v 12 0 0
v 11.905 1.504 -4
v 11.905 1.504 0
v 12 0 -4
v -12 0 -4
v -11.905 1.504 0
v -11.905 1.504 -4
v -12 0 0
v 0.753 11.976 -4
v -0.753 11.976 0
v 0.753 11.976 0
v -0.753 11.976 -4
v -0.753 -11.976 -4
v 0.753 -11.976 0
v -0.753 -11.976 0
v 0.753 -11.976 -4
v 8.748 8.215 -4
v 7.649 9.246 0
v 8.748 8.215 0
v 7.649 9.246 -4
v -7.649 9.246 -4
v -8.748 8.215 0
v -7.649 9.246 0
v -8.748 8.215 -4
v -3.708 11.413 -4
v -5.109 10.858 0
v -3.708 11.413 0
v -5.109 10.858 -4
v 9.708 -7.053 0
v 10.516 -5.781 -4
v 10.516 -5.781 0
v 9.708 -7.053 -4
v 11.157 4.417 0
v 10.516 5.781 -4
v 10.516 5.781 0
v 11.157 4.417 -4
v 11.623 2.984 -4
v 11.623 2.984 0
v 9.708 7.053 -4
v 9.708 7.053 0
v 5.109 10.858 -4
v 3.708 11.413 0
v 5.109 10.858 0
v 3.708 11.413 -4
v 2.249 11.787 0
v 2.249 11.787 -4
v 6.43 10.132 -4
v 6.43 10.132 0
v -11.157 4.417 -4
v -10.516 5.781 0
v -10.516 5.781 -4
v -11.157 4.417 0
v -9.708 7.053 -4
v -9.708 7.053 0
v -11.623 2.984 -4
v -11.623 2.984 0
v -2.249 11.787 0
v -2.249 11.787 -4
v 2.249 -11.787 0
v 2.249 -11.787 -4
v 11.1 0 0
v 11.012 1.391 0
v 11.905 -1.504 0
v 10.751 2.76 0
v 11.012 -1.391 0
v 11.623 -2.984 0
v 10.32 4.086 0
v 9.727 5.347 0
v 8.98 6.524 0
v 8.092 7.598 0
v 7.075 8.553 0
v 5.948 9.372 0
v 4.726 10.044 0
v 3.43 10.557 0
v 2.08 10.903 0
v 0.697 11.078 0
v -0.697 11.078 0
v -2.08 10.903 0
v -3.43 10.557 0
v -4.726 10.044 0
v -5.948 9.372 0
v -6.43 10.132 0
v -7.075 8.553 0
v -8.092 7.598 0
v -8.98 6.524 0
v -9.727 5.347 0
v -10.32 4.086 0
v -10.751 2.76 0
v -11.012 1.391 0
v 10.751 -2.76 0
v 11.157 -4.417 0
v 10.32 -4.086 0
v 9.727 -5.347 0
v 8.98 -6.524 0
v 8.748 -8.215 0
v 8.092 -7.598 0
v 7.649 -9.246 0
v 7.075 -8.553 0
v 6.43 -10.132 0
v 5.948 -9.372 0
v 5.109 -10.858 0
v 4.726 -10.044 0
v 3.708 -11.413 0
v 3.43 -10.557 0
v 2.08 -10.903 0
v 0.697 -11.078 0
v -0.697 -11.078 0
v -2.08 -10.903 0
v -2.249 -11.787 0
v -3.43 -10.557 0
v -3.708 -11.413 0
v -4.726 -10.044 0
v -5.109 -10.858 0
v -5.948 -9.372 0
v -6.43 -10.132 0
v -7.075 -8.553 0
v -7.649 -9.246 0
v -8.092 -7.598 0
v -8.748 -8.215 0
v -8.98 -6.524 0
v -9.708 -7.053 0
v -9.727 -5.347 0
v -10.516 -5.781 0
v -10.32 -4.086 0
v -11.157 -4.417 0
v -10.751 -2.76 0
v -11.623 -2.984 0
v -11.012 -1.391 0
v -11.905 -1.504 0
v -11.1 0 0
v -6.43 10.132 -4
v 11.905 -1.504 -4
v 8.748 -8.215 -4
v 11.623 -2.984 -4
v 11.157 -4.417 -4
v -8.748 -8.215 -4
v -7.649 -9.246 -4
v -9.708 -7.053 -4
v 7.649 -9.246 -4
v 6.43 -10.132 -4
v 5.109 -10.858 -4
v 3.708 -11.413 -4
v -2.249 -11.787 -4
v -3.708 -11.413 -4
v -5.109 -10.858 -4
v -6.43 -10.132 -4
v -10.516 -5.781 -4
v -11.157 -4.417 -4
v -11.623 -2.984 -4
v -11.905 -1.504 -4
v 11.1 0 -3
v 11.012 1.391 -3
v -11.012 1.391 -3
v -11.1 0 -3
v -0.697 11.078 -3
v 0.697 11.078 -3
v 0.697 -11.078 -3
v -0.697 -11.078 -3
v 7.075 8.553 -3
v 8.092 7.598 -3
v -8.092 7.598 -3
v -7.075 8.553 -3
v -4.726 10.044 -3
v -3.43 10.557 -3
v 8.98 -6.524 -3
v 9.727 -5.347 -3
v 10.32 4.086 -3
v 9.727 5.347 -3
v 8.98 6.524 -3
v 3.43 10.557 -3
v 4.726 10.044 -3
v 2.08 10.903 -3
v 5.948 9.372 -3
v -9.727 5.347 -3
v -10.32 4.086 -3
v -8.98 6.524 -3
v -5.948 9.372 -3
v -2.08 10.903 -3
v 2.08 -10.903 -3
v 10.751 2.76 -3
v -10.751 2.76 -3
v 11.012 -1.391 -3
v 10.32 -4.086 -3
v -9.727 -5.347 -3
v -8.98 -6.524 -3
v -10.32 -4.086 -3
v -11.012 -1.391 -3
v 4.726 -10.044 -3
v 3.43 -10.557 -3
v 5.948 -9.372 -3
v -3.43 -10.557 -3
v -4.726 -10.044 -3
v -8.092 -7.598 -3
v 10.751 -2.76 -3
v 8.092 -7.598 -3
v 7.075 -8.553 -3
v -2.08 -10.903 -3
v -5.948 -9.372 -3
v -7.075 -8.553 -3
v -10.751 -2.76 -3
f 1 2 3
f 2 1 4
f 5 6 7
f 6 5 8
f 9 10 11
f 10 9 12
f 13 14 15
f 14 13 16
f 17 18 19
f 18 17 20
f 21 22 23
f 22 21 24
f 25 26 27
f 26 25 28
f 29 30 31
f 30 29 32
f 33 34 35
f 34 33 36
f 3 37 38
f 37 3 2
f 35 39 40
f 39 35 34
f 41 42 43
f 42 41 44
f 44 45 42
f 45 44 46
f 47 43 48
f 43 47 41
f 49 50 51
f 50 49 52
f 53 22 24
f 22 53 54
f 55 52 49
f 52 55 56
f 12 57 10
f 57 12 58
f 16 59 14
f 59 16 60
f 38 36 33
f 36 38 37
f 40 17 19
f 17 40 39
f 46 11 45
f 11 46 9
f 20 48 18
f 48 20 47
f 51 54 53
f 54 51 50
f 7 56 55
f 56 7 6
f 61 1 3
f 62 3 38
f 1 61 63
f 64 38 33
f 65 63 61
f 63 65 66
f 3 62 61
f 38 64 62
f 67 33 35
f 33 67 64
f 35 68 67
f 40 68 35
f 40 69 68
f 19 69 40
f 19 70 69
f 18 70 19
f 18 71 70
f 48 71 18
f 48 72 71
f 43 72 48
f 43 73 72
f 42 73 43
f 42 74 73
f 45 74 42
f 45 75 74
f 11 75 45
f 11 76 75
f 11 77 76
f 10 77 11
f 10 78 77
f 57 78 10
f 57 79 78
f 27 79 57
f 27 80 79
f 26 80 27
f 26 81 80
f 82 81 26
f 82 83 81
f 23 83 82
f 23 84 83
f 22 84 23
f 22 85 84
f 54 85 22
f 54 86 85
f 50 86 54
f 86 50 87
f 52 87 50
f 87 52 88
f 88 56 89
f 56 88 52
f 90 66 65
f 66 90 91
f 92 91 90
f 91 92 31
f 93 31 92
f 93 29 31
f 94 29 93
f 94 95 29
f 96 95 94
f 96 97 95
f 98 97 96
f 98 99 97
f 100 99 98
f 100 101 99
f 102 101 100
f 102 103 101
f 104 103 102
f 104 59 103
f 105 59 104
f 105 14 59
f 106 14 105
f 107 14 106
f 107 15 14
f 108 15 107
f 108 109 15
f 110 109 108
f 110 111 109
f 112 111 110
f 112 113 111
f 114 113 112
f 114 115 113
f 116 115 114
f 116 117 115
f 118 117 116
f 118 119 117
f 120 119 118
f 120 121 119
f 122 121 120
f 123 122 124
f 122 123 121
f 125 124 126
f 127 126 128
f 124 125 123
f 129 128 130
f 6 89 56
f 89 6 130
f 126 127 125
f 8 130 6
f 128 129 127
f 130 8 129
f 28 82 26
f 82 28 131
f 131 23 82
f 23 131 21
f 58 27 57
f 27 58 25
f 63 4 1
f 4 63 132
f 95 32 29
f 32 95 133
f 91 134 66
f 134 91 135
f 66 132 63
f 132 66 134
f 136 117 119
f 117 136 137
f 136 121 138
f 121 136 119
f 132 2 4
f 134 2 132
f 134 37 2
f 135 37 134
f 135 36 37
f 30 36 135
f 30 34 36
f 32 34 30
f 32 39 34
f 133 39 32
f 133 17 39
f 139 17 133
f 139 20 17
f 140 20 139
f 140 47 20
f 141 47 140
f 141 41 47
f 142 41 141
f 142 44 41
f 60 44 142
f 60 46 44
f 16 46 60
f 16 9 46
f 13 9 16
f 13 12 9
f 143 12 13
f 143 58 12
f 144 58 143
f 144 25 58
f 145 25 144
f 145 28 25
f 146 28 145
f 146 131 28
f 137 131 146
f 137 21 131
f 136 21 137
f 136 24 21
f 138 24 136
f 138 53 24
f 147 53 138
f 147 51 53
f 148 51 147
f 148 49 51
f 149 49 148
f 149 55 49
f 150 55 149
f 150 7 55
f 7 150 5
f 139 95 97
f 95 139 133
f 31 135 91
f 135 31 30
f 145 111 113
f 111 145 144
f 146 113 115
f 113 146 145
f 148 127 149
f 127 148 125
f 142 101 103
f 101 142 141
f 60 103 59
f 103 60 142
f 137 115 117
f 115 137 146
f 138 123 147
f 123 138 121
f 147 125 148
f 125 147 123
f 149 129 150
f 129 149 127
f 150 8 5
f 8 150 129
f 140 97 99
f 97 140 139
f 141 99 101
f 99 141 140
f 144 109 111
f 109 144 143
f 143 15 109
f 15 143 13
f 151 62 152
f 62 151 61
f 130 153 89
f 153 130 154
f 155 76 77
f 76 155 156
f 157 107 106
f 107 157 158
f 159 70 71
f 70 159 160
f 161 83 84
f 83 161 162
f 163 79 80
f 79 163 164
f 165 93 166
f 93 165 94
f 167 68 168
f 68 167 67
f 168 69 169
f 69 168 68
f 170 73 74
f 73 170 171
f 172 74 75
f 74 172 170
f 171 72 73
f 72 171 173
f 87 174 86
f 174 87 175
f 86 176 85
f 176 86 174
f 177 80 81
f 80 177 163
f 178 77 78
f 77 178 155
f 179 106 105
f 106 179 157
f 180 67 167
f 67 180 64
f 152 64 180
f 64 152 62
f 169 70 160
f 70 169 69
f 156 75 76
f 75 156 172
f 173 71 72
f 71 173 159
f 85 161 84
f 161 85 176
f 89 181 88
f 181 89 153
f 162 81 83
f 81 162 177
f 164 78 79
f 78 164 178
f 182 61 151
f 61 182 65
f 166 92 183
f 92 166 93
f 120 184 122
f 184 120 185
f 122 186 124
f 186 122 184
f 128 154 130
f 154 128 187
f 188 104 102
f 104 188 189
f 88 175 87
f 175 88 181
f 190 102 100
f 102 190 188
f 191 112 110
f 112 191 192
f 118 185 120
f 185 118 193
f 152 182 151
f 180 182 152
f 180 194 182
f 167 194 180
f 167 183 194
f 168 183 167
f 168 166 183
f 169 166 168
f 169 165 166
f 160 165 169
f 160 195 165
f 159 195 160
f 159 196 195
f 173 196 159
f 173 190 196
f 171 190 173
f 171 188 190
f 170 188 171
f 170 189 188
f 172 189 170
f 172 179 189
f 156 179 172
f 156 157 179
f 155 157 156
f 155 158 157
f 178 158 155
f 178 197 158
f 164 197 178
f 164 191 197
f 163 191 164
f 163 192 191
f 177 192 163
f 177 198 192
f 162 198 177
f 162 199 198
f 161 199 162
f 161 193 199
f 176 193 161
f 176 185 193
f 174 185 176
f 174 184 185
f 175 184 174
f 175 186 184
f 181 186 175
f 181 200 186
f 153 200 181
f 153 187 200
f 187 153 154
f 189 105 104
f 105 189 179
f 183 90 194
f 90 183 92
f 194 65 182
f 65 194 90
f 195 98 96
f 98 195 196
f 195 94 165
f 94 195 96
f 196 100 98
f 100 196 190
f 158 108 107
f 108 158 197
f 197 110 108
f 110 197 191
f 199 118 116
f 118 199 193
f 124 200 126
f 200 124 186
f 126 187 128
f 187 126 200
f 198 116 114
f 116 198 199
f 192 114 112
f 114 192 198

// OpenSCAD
$fn = 50;


difference() {
	union() {
		translate(v = [0, 0, -4.0000000000]) {
			cylinder(h = 4, r = 12.0000000000);
		}
	}
	union() {
		#translate(v = [0, 0, -3.0000000000]) {
			cylinder(h = 3, r = 11.1000000000);
		}
	}
}
